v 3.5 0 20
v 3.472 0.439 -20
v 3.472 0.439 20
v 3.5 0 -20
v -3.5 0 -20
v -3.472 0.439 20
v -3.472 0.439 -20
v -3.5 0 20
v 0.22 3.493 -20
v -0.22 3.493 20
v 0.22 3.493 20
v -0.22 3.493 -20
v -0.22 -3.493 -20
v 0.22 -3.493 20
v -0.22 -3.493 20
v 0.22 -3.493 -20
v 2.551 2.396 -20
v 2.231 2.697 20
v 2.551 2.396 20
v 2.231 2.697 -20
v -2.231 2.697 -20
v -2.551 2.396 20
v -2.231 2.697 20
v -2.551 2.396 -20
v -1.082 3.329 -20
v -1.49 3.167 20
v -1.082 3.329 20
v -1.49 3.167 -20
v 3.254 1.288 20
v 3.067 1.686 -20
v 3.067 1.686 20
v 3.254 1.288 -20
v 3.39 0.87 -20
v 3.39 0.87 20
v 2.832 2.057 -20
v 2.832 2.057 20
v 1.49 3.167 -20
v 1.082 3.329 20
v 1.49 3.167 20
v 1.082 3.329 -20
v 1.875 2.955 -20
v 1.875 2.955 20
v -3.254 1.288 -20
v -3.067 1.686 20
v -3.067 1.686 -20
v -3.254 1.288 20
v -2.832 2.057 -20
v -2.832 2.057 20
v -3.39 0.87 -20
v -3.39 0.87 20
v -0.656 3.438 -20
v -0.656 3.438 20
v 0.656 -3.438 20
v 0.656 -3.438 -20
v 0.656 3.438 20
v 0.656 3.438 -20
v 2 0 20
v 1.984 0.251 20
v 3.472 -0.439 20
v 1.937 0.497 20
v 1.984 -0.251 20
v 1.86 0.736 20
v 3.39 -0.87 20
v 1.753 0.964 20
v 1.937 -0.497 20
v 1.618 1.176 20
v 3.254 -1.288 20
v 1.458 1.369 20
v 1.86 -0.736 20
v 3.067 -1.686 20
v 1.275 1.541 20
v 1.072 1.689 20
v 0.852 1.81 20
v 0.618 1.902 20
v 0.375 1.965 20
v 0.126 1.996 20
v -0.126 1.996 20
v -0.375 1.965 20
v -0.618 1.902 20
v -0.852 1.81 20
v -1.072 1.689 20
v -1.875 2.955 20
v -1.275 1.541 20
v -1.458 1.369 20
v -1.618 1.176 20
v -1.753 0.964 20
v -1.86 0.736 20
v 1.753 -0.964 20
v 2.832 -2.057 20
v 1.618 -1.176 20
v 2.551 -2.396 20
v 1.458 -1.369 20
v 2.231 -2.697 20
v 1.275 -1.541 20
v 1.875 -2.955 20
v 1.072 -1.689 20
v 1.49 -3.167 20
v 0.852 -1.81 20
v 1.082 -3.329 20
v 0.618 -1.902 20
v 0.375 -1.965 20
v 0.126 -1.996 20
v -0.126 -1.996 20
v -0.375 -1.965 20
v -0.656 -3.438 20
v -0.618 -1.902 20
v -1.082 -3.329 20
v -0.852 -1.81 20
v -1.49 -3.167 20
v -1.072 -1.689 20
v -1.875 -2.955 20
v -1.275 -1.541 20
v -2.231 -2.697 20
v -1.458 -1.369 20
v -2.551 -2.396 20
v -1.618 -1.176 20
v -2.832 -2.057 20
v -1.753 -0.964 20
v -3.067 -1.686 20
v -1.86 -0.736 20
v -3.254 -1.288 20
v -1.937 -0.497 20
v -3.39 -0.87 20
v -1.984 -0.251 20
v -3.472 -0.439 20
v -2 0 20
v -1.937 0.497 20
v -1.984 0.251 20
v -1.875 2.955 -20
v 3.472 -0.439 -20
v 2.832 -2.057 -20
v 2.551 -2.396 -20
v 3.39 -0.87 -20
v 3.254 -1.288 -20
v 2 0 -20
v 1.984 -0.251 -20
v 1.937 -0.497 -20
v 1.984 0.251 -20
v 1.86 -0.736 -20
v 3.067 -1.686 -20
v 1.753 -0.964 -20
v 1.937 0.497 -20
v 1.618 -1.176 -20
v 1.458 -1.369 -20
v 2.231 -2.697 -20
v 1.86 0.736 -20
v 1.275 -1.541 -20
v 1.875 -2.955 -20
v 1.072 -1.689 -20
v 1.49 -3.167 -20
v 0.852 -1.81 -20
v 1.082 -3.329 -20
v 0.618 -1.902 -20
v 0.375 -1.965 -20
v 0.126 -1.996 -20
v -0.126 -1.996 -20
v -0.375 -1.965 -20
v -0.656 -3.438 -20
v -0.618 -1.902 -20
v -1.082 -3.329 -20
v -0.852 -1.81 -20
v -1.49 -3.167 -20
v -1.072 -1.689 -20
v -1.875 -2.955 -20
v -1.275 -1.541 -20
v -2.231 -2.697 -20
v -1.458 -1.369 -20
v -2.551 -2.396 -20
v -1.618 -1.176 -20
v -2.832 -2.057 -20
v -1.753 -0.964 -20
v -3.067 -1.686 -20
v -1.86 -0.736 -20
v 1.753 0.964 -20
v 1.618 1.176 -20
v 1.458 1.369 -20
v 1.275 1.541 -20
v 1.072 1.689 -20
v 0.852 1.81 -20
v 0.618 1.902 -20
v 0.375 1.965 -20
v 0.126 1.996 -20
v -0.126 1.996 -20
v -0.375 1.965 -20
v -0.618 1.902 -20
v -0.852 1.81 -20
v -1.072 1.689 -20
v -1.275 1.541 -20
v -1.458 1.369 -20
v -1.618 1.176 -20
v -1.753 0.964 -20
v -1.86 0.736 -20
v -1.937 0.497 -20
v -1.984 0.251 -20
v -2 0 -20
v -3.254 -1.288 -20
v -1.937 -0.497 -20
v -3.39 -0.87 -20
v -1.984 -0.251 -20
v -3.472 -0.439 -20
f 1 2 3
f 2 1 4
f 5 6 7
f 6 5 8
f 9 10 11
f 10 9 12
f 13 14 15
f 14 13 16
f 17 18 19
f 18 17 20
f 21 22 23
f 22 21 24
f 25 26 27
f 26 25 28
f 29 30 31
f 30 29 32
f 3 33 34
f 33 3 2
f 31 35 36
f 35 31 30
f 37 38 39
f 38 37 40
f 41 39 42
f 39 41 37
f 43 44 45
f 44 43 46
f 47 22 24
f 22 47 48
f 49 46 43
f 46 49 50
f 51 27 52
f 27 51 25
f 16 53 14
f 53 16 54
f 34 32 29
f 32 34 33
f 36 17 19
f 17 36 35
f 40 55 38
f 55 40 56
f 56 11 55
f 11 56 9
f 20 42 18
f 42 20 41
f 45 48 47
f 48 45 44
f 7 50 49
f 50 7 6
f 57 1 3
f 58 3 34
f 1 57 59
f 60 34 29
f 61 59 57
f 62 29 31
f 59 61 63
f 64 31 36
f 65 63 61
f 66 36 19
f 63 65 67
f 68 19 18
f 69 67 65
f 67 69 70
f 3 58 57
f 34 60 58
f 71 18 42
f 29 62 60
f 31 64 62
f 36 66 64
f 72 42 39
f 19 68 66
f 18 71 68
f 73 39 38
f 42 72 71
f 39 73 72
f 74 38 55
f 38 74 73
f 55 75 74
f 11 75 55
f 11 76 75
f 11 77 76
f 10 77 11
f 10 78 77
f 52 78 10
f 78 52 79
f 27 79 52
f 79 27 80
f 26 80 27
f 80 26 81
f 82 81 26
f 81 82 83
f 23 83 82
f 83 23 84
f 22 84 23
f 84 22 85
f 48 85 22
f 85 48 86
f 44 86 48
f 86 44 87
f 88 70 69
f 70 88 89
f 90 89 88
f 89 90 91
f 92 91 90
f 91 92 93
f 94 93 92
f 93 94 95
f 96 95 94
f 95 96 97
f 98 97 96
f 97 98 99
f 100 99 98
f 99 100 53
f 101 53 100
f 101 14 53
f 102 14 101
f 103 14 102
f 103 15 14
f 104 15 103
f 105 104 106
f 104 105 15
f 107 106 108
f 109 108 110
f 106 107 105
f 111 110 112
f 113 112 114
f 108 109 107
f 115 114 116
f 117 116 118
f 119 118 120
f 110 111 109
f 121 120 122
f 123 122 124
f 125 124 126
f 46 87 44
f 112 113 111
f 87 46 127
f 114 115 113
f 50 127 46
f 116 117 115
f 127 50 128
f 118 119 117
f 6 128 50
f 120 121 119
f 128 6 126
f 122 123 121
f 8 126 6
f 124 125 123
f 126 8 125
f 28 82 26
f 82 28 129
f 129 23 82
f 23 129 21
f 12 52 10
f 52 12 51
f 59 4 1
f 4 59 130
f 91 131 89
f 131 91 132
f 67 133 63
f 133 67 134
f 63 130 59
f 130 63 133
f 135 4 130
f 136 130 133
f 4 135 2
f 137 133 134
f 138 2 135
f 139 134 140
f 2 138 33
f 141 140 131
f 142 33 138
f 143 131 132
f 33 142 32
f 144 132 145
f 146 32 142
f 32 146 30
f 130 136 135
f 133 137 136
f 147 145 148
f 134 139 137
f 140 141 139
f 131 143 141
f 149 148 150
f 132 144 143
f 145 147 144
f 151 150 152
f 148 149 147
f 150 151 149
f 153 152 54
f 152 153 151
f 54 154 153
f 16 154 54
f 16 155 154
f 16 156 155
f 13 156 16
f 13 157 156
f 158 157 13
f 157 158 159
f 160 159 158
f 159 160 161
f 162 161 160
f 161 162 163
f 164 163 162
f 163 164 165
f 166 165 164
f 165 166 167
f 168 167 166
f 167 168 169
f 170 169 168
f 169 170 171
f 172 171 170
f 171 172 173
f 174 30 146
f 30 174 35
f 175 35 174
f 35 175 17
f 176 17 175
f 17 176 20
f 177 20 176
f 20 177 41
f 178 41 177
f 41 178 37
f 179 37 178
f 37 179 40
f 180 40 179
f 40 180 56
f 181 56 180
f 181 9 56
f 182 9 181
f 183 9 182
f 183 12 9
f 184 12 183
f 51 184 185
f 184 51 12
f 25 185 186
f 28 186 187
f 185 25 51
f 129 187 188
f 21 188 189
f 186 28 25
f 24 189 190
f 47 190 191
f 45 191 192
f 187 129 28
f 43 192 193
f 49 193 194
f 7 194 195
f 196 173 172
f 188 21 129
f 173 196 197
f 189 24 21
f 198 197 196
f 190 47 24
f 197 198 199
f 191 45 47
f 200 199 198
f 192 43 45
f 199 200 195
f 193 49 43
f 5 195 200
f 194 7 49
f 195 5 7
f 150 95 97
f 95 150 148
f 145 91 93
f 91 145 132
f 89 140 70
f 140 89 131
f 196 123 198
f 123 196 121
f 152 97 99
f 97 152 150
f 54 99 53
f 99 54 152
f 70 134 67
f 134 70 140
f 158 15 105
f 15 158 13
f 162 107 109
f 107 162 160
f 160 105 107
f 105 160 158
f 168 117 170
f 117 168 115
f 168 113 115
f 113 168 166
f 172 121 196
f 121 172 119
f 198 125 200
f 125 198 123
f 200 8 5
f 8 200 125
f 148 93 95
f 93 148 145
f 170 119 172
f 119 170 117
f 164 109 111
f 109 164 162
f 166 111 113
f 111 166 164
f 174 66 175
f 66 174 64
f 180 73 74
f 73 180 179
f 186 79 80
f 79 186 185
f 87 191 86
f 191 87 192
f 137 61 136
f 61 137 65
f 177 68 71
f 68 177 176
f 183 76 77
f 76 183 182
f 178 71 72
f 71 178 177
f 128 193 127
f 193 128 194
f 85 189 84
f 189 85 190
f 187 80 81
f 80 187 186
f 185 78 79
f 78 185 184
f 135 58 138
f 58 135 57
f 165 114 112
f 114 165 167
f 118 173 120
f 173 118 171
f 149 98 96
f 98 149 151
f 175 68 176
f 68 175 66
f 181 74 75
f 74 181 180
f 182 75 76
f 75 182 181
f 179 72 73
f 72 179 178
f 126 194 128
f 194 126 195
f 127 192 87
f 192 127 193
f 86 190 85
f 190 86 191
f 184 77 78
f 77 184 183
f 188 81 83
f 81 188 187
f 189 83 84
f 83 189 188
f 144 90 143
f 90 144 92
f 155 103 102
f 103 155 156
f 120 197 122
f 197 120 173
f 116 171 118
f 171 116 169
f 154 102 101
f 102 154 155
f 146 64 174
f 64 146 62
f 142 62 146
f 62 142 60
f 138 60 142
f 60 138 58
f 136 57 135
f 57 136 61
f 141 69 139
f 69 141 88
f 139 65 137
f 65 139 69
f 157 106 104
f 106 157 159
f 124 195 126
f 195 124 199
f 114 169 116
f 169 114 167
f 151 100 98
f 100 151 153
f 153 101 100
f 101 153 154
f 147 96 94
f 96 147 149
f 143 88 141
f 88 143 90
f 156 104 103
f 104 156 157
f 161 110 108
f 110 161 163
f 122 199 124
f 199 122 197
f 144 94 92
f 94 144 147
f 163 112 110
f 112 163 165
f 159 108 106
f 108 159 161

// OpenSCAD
$fn = 50;


difference() {
	union() {
		translate(v = [0, 0, -20.0000000000]) {
			cylinder(h = 40, r = 3.5000000000);
		}
	}
	union() {
		translate(v = [0, 0, -100.0000000000]) {
			cylinder(h = 200, r = 2);
		}
	}
}
